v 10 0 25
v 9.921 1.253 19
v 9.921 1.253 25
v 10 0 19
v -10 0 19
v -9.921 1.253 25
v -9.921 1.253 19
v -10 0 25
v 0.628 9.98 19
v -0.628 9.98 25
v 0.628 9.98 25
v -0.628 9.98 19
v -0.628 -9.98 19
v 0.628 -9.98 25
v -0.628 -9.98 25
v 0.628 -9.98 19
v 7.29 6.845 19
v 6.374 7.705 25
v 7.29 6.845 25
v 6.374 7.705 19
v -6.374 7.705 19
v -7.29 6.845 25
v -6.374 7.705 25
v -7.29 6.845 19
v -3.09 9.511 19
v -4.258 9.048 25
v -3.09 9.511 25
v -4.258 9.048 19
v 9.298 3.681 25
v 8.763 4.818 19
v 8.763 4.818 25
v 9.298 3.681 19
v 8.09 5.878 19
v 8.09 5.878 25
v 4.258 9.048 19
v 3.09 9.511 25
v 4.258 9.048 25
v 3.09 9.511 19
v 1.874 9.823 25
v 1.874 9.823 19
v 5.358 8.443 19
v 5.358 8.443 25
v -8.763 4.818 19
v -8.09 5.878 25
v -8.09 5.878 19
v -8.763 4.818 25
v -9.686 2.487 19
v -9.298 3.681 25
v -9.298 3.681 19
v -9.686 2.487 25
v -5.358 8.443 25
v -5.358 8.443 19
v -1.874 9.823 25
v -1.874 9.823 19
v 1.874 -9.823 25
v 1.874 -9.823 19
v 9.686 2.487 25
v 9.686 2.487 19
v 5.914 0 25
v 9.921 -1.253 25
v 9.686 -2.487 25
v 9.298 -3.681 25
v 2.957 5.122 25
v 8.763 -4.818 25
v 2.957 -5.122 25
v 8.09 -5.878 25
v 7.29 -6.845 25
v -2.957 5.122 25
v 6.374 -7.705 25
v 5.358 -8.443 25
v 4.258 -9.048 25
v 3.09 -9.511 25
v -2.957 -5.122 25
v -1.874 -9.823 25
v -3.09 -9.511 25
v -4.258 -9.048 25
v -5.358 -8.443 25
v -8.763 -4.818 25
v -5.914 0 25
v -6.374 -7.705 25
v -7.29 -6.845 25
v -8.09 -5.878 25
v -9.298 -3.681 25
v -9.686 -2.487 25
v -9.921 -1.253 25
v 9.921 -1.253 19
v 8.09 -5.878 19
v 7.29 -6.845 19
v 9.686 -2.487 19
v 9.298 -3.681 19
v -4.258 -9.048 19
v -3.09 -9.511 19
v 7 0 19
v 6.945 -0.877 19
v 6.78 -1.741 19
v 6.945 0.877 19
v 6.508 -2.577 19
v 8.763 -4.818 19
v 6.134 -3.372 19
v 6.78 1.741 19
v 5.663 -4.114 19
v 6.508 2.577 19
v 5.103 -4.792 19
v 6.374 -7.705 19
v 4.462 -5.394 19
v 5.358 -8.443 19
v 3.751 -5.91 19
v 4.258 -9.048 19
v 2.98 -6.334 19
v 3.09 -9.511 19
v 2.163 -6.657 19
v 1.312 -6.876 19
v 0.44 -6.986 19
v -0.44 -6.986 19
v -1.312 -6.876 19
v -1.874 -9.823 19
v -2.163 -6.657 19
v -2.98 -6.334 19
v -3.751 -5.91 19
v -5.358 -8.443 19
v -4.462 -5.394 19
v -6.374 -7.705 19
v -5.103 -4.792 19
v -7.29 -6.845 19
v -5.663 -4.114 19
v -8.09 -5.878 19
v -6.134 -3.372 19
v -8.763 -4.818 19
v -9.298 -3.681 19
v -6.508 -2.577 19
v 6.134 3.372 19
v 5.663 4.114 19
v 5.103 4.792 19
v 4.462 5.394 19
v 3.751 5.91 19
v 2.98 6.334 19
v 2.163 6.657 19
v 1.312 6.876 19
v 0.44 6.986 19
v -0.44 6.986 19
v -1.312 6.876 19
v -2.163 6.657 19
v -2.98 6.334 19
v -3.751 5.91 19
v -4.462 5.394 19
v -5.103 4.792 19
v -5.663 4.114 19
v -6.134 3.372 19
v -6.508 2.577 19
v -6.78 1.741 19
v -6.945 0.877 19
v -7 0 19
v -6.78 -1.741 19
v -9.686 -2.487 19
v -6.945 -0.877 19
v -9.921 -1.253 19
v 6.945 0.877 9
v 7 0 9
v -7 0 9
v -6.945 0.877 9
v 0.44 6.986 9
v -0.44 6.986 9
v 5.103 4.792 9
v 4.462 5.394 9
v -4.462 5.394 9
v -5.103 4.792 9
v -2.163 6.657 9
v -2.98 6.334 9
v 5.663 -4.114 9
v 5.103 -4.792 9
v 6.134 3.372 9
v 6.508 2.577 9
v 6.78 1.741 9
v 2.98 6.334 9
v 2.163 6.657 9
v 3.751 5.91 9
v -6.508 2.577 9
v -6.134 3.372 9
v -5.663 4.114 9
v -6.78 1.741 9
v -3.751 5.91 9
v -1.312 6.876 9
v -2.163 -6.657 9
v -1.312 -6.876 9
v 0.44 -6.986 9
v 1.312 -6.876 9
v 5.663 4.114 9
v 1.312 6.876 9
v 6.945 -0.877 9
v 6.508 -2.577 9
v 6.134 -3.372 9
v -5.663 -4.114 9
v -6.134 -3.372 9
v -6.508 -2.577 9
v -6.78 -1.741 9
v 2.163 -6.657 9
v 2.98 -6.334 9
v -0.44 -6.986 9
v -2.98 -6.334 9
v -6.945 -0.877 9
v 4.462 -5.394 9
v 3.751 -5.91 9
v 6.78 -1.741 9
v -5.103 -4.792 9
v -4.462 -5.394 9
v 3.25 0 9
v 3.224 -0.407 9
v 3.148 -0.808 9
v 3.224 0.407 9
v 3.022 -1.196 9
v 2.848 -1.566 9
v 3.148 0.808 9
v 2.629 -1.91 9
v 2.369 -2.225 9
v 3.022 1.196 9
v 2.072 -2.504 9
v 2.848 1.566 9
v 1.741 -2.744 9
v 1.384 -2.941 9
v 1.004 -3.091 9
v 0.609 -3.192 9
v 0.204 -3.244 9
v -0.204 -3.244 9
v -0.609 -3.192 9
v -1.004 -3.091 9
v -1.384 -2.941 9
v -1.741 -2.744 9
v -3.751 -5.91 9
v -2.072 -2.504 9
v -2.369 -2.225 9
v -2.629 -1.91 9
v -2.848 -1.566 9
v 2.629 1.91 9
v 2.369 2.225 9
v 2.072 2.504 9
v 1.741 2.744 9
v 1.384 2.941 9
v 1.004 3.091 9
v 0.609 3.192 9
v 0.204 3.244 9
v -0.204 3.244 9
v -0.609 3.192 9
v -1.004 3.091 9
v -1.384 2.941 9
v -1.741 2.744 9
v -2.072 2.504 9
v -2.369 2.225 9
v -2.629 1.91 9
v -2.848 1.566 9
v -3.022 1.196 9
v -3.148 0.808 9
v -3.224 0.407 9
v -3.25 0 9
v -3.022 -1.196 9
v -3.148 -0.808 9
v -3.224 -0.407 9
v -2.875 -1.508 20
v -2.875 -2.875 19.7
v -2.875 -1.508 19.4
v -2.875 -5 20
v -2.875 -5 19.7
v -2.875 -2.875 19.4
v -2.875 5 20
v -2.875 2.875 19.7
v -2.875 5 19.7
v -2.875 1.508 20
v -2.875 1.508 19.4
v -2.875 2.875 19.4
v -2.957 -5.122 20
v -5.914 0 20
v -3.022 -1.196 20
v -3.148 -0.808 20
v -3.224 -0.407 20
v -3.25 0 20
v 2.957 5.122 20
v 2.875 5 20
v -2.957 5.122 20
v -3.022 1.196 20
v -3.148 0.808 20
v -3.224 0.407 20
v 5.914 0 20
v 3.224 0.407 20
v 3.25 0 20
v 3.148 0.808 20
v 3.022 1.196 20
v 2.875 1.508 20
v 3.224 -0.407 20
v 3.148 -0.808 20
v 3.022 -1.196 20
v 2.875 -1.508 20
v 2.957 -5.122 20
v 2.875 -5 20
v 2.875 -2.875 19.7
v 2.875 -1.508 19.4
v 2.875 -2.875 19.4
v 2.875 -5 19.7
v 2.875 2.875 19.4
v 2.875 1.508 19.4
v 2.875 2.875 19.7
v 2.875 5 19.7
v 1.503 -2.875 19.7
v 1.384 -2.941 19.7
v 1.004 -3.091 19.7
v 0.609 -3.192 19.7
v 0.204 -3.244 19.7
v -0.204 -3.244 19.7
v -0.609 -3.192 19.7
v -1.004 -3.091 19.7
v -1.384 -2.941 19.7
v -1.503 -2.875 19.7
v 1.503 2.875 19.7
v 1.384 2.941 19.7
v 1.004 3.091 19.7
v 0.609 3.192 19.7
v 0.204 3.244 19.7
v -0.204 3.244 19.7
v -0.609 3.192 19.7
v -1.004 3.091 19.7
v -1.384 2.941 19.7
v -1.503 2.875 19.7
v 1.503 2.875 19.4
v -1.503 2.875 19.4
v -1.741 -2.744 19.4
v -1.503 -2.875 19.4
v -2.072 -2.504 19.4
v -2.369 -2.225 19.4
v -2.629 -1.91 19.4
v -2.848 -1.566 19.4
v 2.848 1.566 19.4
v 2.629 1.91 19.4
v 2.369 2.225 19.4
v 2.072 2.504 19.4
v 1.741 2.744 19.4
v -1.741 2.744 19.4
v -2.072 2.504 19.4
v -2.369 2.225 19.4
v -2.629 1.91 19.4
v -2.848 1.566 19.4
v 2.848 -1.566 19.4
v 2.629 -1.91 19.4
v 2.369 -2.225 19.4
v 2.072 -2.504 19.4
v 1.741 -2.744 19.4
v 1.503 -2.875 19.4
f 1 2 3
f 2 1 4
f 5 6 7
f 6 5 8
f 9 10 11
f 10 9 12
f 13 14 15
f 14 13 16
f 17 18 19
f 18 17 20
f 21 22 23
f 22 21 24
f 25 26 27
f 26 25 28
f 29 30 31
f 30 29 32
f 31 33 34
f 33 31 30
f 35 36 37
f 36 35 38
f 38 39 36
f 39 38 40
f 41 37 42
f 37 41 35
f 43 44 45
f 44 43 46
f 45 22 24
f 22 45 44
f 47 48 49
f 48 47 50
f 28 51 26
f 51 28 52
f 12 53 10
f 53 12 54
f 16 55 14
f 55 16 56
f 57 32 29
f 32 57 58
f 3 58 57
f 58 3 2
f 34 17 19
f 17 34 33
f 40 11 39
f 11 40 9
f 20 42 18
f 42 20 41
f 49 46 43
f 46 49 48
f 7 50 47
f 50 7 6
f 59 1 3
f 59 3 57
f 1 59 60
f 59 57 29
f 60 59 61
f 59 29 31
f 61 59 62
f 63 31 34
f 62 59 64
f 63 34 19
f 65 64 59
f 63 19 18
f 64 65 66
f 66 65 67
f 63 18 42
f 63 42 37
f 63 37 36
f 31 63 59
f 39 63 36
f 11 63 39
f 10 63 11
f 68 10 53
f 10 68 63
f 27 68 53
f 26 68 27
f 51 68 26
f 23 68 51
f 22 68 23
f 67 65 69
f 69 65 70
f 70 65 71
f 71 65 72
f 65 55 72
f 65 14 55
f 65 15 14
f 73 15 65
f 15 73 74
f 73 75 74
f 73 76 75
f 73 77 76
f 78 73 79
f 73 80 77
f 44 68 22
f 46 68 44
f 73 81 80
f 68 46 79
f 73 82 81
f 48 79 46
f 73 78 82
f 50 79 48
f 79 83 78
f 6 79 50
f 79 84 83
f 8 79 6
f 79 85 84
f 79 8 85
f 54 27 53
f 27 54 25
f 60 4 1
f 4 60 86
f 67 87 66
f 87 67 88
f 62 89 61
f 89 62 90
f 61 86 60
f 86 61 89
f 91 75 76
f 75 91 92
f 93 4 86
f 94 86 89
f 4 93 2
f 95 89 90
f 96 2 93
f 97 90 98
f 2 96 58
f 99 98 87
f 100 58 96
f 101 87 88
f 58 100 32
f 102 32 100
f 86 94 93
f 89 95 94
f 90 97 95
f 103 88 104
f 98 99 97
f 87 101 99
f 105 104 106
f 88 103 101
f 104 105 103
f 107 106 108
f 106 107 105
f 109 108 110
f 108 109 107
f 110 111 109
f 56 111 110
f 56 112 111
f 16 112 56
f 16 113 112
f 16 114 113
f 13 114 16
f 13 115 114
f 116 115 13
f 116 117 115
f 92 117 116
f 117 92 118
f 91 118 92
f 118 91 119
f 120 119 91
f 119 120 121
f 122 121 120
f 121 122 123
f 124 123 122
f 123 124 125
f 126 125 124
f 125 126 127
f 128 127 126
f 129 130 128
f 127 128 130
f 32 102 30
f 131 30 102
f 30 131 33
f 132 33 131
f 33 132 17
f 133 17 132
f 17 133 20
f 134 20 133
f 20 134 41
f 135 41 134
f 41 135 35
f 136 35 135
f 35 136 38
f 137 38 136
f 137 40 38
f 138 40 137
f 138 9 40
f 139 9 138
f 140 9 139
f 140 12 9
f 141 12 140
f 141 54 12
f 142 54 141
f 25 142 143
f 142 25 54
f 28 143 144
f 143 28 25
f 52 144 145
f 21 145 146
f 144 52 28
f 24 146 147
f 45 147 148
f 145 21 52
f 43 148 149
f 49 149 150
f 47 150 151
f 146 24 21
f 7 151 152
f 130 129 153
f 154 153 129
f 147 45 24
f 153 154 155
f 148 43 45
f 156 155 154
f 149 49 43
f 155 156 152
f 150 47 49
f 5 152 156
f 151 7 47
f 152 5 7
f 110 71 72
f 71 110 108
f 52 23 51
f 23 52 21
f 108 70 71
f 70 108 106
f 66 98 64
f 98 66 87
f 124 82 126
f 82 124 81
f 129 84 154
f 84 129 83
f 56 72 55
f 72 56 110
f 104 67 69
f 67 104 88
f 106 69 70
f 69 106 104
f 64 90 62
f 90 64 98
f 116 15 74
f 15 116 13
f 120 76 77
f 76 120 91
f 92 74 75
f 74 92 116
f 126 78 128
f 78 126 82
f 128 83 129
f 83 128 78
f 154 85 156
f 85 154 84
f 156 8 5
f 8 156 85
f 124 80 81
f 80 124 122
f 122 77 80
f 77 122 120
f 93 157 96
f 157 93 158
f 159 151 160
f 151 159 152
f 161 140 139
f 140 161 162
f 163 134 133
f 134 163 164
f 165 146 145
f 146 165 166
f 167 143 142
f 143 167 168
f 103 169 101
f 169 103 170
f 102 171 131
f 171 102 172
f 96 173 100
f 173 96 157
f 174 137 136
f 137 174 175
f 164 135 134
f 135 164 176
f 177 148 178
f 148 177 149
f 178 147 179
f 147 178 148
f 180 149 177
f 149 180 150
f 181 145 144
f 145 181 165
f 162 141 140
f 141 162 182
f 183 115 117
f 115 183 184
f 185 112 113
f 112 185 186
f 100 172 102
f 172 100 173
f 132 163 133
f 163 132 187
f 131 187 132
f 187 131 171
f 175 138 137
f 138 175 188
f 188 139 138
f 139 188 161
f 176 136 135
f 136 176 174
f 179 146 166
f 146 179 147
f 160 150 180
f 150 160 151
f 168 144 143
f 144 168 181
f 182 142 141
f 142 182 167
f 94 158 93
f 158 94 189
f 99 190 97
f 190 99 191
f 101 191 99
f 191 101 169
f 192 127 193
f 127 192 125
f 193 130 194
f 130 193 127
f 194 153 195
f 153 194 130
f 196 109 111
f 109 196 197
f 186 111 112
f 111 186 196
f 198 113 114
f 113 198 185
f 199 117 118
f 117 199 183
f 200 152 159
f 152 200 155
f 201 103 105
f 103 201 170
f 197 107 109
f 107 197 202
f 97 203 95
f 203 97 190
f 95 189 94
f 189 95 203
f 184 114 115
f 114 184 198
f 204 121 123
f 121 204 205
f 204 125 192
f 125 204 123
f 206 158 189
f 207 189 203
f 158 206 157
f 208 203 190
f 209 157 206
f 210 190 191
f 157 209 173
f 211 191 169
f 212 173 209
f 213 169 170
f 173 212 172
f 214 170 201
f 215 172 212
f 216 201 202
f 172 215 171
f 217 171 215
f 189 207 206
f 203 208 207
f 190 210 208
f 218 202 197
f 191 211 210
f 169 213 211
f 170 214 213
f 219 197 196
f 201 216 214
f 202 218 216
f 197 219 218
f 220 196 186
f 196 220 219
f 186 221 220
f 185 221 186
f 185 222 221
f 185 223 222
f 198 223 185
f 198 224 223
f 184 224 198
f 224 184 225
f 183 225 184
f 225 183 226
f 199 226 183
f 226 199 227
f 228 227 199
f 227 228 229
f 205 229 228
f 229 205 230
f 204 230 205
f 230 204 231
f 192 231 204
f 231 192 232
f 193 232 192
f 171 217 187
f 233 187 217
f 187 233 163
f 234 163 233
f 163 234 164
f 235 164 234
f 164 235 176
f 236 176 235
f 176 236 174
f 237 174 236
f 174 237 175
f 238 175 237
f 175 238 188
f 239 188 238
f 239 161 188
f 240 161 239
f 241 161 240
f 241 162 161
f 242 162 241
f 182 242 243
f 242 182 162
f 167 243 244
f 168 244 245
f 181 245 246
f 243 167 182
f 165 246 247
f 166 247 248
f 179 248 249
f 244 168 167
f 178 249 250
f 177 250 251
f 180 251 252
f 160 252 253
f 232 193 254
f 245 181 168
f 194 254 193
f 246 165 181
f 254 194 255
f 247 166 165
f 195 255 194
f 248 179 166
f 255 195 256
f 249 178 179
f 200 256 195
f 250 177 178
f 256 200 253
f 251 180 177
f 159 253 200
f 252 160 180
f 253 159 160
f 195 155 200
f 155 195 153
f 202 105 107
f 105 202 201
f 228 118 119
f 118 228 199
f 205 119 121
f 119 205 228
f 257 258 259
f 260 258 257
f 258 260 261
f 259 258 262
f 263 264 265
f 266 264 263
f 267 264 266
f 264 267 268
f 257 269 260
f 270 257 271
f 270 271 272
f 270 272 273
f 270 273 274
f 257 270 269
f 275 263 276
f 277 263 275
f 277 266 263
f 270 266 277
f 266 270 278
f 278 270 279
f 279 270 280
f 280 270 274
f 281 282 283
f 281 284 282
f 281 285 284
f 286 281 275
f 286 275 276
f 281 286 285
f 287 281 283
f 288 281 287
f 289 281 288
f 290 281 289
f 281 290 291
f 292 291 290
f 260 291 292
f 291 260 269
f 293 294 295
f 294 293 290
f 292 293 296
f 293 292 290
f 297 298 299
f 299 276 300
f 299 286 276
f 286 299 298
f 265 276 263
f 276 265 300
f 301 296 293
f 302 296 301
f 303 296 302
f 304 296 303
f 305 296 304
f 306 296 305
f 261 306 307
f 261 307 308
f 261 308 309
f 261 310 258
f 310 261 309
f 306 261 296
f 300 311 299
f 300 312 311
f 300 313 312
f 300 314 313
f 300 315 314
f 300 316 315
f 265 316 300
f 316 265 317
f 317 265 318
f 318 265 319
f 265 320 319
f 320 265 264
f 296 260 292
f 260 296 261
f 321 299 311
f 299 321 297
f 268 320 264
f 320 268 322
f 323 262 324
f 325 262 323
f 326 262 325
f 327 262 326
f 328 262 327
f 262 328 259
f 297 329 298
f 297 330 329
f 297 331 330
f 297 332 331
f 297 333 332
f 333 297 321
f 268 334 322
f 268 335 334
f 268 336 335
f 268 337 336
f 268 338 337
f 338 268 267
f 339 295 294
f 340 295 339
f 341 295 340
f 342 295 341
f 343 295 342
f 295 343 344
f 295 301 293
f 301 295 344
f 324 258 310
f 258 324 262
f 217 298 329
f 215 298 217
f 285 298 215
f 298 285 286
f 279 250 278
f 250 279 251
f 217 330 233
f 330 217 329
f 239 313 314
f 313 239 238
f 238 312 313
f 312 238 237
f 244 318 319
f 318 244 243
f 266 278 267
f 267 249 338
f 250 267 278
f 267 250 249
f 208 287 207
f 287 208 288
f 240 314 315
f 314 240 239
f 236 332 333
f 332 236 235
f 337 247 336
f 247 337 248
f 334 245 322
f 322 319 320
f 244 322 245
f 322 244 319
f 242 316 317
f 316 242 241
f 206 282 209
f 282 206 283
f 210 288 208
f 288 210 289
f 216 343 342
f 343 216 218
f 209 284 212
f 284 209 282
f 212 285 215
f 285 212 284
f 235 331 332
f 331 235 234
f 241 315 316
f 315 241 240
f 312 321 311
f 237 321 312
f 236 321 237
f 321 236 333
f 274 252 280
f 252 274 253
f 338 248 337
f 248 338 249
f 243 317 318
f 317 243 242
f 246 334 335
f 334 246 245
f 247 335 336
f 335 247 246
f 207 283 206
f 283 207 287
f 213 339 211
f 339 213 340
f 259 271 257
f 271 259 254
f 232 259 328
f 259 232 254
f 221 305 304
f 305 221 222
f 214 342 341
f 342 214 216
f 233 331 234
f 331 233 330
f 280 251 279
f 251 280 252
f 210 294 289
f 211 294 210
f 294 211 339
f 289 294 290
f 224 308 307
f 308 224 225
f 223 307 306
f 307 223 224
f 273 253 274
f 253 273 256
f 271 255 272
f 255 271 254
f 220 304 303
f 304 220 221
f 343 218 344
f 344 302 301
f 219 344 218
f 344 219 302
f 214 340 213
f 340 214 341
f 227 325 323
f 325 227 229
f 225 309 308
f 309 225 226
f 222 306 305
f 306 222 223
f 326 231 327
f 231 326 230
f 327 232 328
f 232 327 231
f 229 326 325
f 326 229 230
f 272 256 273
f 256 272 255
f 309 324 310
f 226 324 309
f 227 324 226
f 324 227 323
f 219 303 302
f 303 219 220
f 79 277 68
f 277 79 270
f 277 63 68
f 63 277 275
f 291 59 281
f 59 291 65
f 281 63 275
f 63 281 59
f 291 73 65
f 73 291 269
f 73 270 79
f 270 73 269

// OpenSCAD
$fn = 50;


difference() {
	union() {
		translate(v = [0, 0, 19.0000000000]) {
			cylinder(h = 6, r = 10.0000000000);
		}
		translate(v = [0, 0, 9.0000000000]) {
			cylinder(h = 16, r = 7.0000000000);
		}
	}
	union() {
		translate(v = [0, 0, 25]) {
			rotate(a = [0, 0, 0]) {
				difference() {
					union() {
						#translate(v = [-2.8750000000, -5.0000000000, -5.3000000000]) {
							cube(size = [5.7500000000, 10, 0.3000000000]);
						}
						#translate(v = [-2.8750000000, -2.8750000000, -5.6000000000]) {
							cube(size = [5.7500000000, 5.7500000000, 0.3000000000]);
						}
						#translate(v = [-2.8750000000, -5.0000000000, 0]) {
							cube(size = [5.7500000000, 10, 0.3000000000]);
						}
						#translate(v = [-2.8750000000, -2.8750000000, 0.3000000000]) {
							cube(size = [5.7500000000, 5.7500000000, 0.3000000000]);
						}
						#translate(v = [0, 0, -100.0000000000]) {
							cylinder(h = 200, r = 3.2500000000);
						}
						translate(v = [0, 0, -5]) {
							#linear_extrude(height = 5) {
								polygon(points = [[5.9142500000, 0.0000000000], [2.9571250000, 5.1218907443], [-2.9571250000, 5.1218907443], [-5.9142500000, 0.0000000000], [-2.9571250000, -5.1218907443], [2.9571250000, -5.1218907443]]);
							}
						}
						#translate(v = [-2.8750000000, -5.0000000000, -5.3000000000]) {
							cube(size = [5.7500000000, 10, 0.3000000000]);
						}
						#translate(v = [-2.8750000000, -2.8750000000, -5.6000000000]) {
							cube(size = [5.7500000000, 5.7500000000, 0.3000000000]);
						}
						#translate(v = [-2.8750000000, -5.0000000000, 0]) {
							cube(size = [5.7500000000, 10, 0.3000000000]);
						}
						#translate(v = [-2.8750000000, -2.8750000000, 0.3000000000]) {
							cube(size = [5.7500000000, 5.7500000000, 0.3000000000]);
						}
						#translate(v = [0, 0, -100.0000000000]) {
							cylinder(h = 200, r = 3.2500000000);
						}
						#translate(v = [-2.8750000000, -5.0000000000, -5.3000000000]) {
							cube(size = [5.7500000000, 10, 0.3000000000]);
						}
						#translate(v = [-2.8750000000, -2.8750000000, -5.6000000000]) {
							cube(size = [5.7500000000, 5.7500000000, 0.3000000000]);
						}
						#translate(v = [-2.8750000000, -5.0000000000, 0]) {
							cube(size = [5.7500000000, 10, 0.3000000000]);
						}
						#translate(v = [-2.8750000000, -2.8750000000, 0.3000000000]) {
							cube(size = [5.7500000000, 5.7500000000, 0.3000000000]);
						}
						#translate(v = [0, 0, -100.0000000000]) {
							cylinder(h = 200, r = 3.2500000000);
						}
					}
					union();
				}
			}
		}
		#translate(v = [0, 0, -100.0000000000]) {
			cylinder(h = 200, r = 3.2500000000);
		}
	}
}
